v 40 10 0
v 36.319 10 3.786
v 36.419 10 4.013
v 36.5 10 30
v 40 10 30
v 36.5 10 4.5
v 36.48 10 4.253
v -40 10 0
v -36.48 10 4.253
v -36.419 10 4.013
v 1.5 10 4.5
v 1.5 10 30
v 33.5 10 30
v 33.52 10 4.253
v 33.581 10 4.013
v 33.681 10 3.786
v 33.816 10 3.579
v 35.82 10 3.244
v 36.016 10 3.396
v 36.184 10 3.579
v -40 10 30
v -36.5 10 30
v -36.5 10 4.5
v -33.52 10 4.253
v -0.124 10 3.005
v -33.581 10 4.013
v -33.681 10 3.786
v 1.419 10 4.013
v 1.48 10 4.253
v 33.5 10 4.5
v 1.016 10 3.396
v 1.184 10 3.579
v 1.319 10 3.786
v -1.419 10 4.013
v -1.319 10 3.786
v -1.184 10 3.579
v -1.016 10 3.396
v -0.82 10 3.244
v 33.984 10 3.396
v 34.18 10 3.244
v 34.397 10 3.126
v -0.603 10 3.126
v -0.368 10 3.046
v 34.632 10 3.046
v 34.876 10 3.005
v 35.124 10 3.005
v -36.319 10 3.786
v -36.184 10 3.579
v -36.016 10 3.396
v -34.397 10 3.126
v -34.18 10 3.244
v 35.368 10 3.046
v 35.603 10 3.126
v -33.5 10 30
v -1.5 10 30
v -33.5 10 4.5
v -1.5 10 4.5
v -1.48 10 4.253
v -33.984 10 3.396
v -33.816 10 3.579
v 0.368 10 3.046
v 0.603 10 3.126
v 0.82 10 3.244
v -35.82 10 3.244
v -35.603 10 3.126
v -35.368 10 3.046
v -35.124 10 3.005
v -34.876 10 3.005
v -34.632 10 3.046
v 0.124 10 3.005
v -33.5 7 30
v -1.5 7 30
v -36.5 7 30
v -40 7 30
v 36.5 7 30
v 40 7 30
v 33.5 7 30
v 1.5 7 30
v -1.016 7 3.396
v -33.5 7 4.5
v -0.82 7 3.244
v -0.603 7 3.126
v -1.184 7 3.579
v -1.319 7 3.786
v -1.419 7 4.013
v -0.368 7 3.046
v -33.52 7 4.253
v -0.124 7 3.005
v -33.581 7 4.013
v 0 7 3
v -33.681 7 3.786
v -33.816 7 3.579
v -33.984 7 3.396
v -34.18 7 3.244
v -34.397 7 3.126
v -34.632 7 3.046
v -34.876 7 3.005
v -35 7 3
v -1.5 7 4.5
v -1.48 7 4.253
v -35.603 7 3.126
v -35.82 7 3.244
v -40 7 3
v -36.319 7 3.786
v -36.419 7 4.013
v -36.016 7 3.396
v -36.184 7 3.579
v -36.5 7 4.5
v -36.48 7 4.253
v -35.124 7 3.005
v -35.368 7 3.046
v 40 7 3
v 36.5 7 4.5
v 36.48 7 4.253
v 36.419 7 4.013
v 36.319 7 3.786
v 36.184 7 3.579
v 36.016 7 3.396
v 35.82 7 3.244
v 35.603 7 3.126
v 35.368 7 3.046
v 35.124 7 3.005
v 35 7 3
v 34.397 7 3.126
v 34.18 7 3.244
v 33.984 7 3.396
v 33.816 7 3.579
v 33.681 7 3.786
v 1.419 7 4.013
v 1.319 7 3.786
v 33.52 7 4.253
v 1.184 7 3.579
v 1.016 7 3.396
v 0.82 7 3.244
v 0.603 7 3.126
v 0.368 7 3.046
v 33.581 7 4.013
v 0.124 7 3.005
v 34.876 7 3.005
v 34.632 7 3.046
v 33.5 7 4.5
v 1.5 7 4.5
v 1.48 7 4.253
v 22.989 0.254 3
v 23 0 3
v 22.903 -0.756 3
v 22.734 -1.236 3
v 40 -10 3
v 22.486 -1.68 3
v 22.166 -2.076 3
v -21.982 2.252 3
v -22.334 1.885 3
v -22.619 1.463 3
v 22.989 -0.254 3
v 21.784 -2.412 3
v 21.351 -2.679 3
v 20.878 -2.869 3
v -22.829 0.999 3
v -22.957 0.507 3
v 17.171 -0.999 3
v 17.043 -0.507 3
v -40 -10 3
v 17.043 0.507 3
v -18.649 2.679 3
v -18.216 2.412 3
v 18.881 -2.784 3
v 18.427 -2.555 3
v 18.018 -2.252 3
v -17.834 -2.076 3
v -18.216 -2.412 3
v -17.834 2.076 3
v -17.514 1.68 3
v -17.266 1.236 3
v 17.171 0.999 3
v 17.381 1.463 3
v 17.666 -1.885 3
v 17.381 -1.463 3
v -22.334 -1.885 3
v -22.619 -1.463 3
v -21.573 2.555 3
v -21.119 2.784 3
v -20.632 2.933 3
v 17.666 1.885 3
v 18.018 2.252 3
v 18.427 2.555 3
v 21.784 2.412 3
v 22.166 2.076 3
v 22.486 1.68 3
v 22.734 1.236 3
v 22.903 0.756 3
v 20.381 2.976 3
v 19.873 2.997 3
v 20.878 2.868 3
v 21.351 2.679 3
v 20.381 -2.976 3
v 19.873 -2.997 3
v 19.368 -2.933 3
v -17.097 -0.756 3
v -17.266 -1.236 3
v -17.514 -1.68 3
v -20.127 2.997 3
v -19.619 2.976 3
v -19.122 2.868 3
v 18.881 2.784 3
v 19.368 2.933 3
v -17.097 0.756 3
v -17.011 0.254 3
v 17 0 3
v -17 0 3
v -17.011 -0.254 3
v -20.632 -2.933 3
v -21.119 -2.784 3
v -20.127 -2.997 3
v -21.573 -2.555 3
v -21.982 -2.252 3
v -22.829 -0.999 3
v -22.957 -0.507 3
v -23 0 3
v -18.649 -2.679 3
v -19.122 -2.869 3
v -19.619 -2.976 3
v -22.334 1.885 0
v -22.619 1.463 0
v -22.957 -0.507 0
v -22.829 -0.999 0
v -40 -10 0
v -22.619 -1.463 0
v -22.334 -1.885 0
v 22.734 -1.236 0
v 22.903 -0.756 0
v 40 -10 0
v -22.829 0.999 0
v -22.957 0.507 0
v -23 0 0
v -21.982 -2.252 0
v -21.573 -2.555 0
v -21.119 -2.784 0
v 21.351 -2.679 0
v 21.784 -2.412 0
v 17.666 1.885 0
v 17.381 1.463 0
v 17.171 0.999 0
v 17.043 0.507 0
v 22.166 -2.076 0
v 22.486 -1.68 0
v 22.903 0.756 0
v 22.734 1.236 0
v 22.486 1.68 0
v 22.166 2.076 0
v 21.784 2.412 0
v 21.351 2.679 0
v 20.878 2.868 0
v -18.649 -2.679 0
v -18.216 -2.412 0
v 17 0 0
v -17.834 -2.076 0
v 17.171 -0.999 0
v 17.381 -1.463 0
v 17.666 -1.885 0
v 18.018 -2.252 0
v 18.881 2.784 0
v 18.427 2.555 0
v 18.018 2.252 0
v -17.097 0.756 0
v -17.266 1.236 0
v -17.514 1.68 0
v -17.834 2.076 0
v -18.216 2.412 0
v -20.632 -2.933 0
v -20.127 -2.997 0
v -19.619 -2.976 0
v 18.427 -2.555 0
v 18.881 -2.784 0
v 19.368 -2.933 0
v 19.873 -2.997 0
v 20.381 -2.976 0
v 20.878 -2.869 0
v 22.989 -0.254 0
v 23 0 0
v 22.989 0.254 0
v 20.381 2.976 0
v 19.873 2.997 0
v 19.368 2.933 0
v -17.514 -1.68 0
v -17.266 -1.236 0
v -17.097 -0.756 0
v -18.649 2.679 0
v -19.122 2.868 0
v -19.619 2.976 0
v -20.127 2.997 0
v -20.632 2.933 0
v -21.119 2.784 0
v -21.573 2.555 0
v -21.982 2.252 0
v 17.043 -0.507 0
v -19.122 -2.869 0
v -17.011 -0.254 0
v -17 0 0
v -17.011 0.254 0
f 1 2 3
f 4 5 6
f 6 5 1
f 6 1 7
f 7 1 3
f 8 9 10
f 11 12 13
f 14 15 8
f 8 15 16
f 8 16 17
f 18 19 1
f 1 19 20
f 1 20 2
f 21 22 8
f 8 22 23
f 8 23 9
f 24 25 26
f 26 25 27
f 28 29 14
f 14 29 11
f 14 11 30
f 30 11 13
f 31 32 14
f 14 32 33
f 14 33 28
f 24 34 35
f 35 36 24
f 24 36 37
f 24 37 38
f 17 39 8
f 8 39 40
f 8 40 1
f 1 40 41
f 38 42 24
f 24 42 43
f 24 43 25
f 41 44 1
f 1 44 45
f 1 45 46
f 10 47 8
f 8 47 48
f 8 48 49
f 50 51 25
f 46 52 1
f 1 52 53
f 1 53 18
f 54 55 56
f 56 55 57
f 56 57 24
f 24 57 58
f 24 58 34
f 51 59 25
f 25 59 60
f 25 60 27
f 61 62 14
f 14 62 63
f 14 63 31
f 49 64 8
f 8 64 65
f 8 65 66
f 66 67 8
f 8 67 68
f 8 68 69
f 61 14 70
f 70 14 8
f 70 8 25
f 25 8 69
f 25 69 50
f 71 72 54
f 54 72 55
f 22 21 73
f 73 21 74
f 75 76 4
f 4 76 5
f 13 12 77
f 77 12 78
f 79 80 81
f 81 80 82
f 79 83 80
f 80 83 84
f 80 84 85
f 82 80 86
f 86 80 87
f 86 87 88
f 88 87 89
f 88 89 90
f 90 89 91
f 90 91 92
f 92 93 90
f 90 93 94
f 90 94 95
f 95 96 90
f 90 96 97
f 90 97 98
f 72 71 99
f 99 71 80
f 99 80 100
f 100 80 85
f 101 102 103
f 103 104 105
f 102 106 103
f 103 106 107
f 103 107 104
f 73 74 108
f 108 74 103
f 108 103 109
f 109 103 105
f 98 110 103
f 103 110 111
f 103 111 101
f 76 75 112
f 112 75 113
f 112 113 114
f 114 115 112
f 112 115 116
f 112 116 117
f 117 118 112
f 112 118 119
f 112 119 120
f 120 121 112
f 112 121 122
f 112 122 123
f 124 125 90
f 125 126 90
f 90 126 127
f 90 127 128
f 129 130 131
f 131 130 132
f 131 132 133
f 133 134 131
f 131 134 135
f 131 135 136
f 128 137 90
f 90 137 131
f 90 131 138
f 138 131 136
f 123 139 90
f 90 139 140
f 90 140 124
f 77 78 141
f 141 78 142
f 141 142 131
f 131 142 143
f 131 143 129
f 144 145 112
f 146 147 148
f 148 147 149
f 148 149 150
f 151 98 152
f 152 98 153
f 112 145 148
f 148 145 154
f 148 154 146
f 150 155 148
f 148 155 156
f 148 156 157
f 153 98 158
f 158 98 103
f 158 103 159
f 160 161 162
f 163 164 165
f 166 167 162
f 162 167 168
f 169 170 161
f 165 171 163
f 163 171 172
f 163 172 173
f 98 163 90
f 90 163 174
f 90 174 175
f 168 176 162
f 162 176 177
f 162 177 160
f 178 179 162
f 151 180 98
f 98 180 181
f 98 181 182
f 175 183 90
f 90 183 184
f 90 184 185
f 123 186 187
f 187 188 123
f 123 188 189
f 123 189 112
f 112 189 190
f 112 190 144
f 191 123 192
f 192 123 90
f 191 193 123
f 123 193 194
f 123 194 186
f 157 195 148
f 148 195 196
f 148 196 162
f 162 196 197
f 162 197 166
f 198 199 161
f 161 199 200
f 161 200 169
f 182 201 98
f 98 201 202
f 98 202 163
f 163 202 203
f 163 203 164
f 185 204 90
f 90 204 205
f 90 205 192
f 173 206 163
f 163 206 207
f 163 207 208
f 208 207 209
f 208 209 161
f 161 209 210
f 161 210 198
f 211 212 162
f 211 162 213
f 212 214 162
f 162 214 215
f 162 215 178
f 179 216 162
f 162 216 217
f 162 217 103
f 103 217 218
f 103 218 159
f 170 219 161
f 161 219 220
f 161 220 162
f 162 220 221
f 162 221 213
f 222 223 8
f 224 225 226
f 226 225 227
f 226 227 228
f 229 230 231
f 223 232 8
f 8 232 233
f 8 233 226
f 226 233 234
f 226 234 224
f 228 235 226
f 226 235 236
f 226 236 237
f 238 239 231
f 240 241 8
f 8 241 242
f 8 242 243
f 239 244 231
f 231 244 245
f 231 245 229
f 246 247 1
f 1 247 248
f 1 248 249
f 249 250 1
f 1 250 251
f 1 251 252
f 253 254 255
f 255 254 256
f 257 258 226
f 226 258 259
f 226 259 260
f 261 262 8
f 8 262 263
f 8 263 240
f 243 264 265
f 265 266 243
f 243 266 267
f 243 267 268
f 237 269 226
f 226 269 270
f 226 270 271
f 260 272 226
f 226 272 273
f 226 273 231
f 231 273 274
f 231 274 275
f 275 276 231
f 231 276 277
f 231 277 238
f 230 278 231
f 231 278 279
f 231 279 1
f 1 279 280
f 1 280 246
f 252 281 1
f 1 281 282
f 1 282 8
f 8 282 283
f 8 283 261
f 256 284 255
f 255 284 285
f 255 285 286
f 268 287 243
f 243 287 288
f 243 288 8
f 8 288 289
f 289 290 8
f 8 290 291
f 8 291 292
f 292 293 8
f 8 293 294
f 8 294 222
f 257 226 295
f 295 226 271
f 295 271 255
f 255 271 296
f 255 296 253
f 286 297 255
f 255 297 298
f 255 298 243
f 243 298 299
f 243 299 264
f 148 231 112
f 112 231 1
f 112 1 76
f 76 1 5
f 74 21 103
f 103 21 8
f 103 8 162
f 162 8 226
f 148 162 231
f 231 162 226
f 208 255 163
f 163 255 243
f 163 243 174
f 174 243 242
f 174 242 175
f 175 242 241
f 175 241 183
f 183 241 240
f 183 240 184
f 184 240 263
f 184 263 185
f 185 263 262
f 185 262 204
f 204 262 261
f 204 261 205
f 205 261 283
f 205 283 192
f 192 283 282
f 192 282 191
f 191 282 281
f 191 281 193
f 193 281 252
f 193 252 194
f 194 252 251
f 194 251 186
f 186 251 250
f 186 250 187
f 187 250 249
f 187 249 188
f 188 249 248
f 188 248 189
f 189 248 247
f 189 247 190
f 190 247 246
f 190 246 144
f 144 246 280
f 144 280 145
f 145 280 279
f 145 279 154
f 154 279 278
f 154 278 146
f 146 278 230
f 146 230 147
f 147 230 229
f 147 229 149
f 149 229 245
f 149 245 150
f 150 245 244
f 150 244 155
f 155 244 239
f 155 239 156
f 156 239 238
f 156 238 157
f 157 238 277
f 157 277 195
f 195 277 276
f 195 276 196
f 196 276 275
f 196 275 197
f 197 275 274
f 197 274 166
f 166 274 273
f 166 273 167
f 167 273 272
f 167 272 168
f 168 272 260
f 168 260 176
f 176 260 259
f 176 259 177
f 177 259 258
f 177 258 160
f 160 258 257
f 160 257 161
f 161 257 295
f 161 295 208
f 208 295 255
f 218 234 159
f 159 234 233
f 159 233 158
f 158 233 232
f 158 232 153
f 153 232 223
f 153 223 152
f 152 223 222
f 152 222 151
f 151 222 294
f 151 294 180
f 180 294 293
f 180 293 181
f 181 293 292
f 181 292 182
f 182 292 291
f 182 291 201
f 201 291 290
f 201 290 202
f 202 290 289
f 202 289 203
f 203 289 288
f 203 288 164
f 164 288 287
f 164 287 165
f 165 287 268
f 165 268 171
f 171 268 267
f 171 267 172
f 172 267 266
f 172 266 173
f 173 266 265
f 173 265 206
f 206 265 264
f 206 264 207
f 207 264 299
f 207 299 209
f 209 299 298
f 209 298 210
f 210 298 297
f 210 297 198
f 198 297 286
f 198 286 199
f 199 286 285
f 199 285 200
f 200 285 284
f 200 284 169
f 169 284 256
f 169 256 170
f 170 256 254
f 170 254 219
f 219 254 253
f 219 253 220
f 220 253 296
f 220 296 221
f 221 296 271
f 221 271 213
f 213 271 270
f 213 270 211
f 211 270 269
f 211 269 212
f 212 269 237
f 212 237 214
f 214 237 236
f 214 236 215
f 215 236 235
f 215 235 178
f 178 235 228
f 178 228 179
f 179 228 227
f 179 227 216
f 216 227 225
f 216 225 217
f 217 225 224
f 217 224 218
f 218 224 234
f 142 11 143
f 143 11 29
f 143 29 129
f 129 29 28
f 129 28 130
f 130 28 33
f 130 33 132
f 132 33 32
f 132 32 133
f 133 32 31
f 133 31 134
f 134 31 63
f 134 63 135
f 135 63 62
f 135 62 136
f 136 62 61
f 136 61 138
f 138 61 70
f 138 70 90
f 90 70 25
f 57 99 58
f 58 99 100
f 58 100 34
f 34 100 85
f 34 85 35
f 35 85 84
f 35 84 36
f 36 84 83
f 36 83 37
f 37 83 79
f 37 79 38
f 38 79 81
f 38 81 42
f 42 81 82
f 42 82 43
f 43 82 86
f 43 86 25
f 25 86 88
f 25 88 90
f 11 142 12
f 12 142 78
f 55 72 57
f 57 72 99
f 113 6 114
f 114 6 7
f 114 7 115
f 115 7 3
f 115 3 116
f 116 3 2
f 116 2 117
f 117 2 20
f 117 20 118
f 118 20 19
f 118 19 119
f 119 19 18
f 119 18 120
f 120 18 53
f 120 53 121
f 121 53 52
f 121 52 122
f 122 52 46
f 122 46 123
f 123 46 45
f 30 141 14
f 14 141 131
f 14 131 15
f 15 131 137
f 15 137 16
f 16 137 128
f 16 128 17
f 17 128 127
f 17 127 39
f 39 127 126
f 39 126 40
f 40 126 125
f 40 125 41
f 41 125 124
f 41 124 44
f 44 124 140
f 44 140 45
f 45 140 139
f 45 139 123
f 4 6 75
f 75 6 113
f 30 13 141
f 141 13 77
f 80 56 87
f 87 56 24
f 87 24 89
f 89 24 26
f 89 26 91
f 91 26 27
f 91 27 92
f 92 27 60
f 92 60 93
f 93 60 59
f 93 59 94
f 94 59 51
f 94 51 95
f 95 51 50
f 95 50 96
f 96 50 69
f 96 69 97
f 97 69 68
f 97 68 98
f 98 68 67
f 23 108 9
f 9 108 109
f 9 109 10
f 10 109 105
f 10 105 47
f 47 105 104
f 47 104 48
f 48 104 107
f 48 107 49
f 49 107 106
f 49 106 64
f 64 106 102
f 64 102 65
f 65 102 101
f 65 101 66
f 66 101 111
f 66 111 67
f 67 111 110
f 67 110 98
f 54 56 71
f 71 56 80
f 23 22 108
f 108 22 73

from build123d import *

# Parameters (mm, degrees)
SKETCH_1_W          = 80
SKETCH_1_H          = 20
SKETCH_1_R          = 3
EXTRUDE_1_DEPTH     = 3
SKETCH_2_W          = 80
SKETCH_2_H          = 30
EXTRUDE_2_DEPTH     = 3
CUT_EXTRUDE_1_DEPTH = 20


with BuildPart() as part:
    # 草图1 → 凸台-拉伸1 (new body)
    with BuildSketch(Plane.XY):
        Rectangle(SKETCH_1_W, SKETCH_1_H)
        with Locations((20, 0)):
            Circle(SKETCH_1_R, mode=Mode.SUBTRACT)
        with Locations((-20, 0)):
            Circle(SKETCH_1_R, mode=Mode.SUBTRACT)
    extrude(amount=EXTRUDE_1_DEPTH)

    # 草图2 → 凸台-拉伸2 (add)
    with BuildSketch(Plane(origin=(0, 10, 0), x_dir=(1, 0, 0), z_dir=(0, 1, 0))):
        with Locations((0, -15)):
            Rectangle(SKETCH_2_W, SKETCH_2_H)
    extrude(amount=-EXTRUDE_2_DEPTH)

    # 草图3 → 切除-拉伸1 (cut)
    with BuildSketch(Plane(origin=(0, 10, 0), x_dir=(1, 0, 0), z_dir=(0, 1, 0))):
        with BuildLine():
            Line((-1.5, -4.5), (-1.5, -30))
            Line((-1.5, -30), (1.5, -30))
            Line((1.5, -30), (1.5, -4.5))
            ThreePointArc((1.5, -4.5), (0, -3), (-1.5, -4.5))
        make_face()
        with BuildLine():
            Line((33.5, -4.5), (33.5, -30))
            Line((33.5, -30), (36.5, -30))
            Line((36.5, -30), (36.5, -4.5))
            ThreePointArc((36.5, -4.5), (35, -3), (33.5, -4.5))
        make_face()
        with BuildLine():
            Line((-36.5, -4.5), (-36.5, -30))
            Line((-36.5, -30), (-33.5, -30))
            Line((-33.5, -30), (-33.5, -4.5))
            ThreePointArc((-33.5, -4.5), (-35, -3), (-36.5, -4.5))
        make_face()
    extrude(amount=-CUT_EXTRUDE_1_DEPTH, mode=Mode.SUBTRACT)


solid = part.part
